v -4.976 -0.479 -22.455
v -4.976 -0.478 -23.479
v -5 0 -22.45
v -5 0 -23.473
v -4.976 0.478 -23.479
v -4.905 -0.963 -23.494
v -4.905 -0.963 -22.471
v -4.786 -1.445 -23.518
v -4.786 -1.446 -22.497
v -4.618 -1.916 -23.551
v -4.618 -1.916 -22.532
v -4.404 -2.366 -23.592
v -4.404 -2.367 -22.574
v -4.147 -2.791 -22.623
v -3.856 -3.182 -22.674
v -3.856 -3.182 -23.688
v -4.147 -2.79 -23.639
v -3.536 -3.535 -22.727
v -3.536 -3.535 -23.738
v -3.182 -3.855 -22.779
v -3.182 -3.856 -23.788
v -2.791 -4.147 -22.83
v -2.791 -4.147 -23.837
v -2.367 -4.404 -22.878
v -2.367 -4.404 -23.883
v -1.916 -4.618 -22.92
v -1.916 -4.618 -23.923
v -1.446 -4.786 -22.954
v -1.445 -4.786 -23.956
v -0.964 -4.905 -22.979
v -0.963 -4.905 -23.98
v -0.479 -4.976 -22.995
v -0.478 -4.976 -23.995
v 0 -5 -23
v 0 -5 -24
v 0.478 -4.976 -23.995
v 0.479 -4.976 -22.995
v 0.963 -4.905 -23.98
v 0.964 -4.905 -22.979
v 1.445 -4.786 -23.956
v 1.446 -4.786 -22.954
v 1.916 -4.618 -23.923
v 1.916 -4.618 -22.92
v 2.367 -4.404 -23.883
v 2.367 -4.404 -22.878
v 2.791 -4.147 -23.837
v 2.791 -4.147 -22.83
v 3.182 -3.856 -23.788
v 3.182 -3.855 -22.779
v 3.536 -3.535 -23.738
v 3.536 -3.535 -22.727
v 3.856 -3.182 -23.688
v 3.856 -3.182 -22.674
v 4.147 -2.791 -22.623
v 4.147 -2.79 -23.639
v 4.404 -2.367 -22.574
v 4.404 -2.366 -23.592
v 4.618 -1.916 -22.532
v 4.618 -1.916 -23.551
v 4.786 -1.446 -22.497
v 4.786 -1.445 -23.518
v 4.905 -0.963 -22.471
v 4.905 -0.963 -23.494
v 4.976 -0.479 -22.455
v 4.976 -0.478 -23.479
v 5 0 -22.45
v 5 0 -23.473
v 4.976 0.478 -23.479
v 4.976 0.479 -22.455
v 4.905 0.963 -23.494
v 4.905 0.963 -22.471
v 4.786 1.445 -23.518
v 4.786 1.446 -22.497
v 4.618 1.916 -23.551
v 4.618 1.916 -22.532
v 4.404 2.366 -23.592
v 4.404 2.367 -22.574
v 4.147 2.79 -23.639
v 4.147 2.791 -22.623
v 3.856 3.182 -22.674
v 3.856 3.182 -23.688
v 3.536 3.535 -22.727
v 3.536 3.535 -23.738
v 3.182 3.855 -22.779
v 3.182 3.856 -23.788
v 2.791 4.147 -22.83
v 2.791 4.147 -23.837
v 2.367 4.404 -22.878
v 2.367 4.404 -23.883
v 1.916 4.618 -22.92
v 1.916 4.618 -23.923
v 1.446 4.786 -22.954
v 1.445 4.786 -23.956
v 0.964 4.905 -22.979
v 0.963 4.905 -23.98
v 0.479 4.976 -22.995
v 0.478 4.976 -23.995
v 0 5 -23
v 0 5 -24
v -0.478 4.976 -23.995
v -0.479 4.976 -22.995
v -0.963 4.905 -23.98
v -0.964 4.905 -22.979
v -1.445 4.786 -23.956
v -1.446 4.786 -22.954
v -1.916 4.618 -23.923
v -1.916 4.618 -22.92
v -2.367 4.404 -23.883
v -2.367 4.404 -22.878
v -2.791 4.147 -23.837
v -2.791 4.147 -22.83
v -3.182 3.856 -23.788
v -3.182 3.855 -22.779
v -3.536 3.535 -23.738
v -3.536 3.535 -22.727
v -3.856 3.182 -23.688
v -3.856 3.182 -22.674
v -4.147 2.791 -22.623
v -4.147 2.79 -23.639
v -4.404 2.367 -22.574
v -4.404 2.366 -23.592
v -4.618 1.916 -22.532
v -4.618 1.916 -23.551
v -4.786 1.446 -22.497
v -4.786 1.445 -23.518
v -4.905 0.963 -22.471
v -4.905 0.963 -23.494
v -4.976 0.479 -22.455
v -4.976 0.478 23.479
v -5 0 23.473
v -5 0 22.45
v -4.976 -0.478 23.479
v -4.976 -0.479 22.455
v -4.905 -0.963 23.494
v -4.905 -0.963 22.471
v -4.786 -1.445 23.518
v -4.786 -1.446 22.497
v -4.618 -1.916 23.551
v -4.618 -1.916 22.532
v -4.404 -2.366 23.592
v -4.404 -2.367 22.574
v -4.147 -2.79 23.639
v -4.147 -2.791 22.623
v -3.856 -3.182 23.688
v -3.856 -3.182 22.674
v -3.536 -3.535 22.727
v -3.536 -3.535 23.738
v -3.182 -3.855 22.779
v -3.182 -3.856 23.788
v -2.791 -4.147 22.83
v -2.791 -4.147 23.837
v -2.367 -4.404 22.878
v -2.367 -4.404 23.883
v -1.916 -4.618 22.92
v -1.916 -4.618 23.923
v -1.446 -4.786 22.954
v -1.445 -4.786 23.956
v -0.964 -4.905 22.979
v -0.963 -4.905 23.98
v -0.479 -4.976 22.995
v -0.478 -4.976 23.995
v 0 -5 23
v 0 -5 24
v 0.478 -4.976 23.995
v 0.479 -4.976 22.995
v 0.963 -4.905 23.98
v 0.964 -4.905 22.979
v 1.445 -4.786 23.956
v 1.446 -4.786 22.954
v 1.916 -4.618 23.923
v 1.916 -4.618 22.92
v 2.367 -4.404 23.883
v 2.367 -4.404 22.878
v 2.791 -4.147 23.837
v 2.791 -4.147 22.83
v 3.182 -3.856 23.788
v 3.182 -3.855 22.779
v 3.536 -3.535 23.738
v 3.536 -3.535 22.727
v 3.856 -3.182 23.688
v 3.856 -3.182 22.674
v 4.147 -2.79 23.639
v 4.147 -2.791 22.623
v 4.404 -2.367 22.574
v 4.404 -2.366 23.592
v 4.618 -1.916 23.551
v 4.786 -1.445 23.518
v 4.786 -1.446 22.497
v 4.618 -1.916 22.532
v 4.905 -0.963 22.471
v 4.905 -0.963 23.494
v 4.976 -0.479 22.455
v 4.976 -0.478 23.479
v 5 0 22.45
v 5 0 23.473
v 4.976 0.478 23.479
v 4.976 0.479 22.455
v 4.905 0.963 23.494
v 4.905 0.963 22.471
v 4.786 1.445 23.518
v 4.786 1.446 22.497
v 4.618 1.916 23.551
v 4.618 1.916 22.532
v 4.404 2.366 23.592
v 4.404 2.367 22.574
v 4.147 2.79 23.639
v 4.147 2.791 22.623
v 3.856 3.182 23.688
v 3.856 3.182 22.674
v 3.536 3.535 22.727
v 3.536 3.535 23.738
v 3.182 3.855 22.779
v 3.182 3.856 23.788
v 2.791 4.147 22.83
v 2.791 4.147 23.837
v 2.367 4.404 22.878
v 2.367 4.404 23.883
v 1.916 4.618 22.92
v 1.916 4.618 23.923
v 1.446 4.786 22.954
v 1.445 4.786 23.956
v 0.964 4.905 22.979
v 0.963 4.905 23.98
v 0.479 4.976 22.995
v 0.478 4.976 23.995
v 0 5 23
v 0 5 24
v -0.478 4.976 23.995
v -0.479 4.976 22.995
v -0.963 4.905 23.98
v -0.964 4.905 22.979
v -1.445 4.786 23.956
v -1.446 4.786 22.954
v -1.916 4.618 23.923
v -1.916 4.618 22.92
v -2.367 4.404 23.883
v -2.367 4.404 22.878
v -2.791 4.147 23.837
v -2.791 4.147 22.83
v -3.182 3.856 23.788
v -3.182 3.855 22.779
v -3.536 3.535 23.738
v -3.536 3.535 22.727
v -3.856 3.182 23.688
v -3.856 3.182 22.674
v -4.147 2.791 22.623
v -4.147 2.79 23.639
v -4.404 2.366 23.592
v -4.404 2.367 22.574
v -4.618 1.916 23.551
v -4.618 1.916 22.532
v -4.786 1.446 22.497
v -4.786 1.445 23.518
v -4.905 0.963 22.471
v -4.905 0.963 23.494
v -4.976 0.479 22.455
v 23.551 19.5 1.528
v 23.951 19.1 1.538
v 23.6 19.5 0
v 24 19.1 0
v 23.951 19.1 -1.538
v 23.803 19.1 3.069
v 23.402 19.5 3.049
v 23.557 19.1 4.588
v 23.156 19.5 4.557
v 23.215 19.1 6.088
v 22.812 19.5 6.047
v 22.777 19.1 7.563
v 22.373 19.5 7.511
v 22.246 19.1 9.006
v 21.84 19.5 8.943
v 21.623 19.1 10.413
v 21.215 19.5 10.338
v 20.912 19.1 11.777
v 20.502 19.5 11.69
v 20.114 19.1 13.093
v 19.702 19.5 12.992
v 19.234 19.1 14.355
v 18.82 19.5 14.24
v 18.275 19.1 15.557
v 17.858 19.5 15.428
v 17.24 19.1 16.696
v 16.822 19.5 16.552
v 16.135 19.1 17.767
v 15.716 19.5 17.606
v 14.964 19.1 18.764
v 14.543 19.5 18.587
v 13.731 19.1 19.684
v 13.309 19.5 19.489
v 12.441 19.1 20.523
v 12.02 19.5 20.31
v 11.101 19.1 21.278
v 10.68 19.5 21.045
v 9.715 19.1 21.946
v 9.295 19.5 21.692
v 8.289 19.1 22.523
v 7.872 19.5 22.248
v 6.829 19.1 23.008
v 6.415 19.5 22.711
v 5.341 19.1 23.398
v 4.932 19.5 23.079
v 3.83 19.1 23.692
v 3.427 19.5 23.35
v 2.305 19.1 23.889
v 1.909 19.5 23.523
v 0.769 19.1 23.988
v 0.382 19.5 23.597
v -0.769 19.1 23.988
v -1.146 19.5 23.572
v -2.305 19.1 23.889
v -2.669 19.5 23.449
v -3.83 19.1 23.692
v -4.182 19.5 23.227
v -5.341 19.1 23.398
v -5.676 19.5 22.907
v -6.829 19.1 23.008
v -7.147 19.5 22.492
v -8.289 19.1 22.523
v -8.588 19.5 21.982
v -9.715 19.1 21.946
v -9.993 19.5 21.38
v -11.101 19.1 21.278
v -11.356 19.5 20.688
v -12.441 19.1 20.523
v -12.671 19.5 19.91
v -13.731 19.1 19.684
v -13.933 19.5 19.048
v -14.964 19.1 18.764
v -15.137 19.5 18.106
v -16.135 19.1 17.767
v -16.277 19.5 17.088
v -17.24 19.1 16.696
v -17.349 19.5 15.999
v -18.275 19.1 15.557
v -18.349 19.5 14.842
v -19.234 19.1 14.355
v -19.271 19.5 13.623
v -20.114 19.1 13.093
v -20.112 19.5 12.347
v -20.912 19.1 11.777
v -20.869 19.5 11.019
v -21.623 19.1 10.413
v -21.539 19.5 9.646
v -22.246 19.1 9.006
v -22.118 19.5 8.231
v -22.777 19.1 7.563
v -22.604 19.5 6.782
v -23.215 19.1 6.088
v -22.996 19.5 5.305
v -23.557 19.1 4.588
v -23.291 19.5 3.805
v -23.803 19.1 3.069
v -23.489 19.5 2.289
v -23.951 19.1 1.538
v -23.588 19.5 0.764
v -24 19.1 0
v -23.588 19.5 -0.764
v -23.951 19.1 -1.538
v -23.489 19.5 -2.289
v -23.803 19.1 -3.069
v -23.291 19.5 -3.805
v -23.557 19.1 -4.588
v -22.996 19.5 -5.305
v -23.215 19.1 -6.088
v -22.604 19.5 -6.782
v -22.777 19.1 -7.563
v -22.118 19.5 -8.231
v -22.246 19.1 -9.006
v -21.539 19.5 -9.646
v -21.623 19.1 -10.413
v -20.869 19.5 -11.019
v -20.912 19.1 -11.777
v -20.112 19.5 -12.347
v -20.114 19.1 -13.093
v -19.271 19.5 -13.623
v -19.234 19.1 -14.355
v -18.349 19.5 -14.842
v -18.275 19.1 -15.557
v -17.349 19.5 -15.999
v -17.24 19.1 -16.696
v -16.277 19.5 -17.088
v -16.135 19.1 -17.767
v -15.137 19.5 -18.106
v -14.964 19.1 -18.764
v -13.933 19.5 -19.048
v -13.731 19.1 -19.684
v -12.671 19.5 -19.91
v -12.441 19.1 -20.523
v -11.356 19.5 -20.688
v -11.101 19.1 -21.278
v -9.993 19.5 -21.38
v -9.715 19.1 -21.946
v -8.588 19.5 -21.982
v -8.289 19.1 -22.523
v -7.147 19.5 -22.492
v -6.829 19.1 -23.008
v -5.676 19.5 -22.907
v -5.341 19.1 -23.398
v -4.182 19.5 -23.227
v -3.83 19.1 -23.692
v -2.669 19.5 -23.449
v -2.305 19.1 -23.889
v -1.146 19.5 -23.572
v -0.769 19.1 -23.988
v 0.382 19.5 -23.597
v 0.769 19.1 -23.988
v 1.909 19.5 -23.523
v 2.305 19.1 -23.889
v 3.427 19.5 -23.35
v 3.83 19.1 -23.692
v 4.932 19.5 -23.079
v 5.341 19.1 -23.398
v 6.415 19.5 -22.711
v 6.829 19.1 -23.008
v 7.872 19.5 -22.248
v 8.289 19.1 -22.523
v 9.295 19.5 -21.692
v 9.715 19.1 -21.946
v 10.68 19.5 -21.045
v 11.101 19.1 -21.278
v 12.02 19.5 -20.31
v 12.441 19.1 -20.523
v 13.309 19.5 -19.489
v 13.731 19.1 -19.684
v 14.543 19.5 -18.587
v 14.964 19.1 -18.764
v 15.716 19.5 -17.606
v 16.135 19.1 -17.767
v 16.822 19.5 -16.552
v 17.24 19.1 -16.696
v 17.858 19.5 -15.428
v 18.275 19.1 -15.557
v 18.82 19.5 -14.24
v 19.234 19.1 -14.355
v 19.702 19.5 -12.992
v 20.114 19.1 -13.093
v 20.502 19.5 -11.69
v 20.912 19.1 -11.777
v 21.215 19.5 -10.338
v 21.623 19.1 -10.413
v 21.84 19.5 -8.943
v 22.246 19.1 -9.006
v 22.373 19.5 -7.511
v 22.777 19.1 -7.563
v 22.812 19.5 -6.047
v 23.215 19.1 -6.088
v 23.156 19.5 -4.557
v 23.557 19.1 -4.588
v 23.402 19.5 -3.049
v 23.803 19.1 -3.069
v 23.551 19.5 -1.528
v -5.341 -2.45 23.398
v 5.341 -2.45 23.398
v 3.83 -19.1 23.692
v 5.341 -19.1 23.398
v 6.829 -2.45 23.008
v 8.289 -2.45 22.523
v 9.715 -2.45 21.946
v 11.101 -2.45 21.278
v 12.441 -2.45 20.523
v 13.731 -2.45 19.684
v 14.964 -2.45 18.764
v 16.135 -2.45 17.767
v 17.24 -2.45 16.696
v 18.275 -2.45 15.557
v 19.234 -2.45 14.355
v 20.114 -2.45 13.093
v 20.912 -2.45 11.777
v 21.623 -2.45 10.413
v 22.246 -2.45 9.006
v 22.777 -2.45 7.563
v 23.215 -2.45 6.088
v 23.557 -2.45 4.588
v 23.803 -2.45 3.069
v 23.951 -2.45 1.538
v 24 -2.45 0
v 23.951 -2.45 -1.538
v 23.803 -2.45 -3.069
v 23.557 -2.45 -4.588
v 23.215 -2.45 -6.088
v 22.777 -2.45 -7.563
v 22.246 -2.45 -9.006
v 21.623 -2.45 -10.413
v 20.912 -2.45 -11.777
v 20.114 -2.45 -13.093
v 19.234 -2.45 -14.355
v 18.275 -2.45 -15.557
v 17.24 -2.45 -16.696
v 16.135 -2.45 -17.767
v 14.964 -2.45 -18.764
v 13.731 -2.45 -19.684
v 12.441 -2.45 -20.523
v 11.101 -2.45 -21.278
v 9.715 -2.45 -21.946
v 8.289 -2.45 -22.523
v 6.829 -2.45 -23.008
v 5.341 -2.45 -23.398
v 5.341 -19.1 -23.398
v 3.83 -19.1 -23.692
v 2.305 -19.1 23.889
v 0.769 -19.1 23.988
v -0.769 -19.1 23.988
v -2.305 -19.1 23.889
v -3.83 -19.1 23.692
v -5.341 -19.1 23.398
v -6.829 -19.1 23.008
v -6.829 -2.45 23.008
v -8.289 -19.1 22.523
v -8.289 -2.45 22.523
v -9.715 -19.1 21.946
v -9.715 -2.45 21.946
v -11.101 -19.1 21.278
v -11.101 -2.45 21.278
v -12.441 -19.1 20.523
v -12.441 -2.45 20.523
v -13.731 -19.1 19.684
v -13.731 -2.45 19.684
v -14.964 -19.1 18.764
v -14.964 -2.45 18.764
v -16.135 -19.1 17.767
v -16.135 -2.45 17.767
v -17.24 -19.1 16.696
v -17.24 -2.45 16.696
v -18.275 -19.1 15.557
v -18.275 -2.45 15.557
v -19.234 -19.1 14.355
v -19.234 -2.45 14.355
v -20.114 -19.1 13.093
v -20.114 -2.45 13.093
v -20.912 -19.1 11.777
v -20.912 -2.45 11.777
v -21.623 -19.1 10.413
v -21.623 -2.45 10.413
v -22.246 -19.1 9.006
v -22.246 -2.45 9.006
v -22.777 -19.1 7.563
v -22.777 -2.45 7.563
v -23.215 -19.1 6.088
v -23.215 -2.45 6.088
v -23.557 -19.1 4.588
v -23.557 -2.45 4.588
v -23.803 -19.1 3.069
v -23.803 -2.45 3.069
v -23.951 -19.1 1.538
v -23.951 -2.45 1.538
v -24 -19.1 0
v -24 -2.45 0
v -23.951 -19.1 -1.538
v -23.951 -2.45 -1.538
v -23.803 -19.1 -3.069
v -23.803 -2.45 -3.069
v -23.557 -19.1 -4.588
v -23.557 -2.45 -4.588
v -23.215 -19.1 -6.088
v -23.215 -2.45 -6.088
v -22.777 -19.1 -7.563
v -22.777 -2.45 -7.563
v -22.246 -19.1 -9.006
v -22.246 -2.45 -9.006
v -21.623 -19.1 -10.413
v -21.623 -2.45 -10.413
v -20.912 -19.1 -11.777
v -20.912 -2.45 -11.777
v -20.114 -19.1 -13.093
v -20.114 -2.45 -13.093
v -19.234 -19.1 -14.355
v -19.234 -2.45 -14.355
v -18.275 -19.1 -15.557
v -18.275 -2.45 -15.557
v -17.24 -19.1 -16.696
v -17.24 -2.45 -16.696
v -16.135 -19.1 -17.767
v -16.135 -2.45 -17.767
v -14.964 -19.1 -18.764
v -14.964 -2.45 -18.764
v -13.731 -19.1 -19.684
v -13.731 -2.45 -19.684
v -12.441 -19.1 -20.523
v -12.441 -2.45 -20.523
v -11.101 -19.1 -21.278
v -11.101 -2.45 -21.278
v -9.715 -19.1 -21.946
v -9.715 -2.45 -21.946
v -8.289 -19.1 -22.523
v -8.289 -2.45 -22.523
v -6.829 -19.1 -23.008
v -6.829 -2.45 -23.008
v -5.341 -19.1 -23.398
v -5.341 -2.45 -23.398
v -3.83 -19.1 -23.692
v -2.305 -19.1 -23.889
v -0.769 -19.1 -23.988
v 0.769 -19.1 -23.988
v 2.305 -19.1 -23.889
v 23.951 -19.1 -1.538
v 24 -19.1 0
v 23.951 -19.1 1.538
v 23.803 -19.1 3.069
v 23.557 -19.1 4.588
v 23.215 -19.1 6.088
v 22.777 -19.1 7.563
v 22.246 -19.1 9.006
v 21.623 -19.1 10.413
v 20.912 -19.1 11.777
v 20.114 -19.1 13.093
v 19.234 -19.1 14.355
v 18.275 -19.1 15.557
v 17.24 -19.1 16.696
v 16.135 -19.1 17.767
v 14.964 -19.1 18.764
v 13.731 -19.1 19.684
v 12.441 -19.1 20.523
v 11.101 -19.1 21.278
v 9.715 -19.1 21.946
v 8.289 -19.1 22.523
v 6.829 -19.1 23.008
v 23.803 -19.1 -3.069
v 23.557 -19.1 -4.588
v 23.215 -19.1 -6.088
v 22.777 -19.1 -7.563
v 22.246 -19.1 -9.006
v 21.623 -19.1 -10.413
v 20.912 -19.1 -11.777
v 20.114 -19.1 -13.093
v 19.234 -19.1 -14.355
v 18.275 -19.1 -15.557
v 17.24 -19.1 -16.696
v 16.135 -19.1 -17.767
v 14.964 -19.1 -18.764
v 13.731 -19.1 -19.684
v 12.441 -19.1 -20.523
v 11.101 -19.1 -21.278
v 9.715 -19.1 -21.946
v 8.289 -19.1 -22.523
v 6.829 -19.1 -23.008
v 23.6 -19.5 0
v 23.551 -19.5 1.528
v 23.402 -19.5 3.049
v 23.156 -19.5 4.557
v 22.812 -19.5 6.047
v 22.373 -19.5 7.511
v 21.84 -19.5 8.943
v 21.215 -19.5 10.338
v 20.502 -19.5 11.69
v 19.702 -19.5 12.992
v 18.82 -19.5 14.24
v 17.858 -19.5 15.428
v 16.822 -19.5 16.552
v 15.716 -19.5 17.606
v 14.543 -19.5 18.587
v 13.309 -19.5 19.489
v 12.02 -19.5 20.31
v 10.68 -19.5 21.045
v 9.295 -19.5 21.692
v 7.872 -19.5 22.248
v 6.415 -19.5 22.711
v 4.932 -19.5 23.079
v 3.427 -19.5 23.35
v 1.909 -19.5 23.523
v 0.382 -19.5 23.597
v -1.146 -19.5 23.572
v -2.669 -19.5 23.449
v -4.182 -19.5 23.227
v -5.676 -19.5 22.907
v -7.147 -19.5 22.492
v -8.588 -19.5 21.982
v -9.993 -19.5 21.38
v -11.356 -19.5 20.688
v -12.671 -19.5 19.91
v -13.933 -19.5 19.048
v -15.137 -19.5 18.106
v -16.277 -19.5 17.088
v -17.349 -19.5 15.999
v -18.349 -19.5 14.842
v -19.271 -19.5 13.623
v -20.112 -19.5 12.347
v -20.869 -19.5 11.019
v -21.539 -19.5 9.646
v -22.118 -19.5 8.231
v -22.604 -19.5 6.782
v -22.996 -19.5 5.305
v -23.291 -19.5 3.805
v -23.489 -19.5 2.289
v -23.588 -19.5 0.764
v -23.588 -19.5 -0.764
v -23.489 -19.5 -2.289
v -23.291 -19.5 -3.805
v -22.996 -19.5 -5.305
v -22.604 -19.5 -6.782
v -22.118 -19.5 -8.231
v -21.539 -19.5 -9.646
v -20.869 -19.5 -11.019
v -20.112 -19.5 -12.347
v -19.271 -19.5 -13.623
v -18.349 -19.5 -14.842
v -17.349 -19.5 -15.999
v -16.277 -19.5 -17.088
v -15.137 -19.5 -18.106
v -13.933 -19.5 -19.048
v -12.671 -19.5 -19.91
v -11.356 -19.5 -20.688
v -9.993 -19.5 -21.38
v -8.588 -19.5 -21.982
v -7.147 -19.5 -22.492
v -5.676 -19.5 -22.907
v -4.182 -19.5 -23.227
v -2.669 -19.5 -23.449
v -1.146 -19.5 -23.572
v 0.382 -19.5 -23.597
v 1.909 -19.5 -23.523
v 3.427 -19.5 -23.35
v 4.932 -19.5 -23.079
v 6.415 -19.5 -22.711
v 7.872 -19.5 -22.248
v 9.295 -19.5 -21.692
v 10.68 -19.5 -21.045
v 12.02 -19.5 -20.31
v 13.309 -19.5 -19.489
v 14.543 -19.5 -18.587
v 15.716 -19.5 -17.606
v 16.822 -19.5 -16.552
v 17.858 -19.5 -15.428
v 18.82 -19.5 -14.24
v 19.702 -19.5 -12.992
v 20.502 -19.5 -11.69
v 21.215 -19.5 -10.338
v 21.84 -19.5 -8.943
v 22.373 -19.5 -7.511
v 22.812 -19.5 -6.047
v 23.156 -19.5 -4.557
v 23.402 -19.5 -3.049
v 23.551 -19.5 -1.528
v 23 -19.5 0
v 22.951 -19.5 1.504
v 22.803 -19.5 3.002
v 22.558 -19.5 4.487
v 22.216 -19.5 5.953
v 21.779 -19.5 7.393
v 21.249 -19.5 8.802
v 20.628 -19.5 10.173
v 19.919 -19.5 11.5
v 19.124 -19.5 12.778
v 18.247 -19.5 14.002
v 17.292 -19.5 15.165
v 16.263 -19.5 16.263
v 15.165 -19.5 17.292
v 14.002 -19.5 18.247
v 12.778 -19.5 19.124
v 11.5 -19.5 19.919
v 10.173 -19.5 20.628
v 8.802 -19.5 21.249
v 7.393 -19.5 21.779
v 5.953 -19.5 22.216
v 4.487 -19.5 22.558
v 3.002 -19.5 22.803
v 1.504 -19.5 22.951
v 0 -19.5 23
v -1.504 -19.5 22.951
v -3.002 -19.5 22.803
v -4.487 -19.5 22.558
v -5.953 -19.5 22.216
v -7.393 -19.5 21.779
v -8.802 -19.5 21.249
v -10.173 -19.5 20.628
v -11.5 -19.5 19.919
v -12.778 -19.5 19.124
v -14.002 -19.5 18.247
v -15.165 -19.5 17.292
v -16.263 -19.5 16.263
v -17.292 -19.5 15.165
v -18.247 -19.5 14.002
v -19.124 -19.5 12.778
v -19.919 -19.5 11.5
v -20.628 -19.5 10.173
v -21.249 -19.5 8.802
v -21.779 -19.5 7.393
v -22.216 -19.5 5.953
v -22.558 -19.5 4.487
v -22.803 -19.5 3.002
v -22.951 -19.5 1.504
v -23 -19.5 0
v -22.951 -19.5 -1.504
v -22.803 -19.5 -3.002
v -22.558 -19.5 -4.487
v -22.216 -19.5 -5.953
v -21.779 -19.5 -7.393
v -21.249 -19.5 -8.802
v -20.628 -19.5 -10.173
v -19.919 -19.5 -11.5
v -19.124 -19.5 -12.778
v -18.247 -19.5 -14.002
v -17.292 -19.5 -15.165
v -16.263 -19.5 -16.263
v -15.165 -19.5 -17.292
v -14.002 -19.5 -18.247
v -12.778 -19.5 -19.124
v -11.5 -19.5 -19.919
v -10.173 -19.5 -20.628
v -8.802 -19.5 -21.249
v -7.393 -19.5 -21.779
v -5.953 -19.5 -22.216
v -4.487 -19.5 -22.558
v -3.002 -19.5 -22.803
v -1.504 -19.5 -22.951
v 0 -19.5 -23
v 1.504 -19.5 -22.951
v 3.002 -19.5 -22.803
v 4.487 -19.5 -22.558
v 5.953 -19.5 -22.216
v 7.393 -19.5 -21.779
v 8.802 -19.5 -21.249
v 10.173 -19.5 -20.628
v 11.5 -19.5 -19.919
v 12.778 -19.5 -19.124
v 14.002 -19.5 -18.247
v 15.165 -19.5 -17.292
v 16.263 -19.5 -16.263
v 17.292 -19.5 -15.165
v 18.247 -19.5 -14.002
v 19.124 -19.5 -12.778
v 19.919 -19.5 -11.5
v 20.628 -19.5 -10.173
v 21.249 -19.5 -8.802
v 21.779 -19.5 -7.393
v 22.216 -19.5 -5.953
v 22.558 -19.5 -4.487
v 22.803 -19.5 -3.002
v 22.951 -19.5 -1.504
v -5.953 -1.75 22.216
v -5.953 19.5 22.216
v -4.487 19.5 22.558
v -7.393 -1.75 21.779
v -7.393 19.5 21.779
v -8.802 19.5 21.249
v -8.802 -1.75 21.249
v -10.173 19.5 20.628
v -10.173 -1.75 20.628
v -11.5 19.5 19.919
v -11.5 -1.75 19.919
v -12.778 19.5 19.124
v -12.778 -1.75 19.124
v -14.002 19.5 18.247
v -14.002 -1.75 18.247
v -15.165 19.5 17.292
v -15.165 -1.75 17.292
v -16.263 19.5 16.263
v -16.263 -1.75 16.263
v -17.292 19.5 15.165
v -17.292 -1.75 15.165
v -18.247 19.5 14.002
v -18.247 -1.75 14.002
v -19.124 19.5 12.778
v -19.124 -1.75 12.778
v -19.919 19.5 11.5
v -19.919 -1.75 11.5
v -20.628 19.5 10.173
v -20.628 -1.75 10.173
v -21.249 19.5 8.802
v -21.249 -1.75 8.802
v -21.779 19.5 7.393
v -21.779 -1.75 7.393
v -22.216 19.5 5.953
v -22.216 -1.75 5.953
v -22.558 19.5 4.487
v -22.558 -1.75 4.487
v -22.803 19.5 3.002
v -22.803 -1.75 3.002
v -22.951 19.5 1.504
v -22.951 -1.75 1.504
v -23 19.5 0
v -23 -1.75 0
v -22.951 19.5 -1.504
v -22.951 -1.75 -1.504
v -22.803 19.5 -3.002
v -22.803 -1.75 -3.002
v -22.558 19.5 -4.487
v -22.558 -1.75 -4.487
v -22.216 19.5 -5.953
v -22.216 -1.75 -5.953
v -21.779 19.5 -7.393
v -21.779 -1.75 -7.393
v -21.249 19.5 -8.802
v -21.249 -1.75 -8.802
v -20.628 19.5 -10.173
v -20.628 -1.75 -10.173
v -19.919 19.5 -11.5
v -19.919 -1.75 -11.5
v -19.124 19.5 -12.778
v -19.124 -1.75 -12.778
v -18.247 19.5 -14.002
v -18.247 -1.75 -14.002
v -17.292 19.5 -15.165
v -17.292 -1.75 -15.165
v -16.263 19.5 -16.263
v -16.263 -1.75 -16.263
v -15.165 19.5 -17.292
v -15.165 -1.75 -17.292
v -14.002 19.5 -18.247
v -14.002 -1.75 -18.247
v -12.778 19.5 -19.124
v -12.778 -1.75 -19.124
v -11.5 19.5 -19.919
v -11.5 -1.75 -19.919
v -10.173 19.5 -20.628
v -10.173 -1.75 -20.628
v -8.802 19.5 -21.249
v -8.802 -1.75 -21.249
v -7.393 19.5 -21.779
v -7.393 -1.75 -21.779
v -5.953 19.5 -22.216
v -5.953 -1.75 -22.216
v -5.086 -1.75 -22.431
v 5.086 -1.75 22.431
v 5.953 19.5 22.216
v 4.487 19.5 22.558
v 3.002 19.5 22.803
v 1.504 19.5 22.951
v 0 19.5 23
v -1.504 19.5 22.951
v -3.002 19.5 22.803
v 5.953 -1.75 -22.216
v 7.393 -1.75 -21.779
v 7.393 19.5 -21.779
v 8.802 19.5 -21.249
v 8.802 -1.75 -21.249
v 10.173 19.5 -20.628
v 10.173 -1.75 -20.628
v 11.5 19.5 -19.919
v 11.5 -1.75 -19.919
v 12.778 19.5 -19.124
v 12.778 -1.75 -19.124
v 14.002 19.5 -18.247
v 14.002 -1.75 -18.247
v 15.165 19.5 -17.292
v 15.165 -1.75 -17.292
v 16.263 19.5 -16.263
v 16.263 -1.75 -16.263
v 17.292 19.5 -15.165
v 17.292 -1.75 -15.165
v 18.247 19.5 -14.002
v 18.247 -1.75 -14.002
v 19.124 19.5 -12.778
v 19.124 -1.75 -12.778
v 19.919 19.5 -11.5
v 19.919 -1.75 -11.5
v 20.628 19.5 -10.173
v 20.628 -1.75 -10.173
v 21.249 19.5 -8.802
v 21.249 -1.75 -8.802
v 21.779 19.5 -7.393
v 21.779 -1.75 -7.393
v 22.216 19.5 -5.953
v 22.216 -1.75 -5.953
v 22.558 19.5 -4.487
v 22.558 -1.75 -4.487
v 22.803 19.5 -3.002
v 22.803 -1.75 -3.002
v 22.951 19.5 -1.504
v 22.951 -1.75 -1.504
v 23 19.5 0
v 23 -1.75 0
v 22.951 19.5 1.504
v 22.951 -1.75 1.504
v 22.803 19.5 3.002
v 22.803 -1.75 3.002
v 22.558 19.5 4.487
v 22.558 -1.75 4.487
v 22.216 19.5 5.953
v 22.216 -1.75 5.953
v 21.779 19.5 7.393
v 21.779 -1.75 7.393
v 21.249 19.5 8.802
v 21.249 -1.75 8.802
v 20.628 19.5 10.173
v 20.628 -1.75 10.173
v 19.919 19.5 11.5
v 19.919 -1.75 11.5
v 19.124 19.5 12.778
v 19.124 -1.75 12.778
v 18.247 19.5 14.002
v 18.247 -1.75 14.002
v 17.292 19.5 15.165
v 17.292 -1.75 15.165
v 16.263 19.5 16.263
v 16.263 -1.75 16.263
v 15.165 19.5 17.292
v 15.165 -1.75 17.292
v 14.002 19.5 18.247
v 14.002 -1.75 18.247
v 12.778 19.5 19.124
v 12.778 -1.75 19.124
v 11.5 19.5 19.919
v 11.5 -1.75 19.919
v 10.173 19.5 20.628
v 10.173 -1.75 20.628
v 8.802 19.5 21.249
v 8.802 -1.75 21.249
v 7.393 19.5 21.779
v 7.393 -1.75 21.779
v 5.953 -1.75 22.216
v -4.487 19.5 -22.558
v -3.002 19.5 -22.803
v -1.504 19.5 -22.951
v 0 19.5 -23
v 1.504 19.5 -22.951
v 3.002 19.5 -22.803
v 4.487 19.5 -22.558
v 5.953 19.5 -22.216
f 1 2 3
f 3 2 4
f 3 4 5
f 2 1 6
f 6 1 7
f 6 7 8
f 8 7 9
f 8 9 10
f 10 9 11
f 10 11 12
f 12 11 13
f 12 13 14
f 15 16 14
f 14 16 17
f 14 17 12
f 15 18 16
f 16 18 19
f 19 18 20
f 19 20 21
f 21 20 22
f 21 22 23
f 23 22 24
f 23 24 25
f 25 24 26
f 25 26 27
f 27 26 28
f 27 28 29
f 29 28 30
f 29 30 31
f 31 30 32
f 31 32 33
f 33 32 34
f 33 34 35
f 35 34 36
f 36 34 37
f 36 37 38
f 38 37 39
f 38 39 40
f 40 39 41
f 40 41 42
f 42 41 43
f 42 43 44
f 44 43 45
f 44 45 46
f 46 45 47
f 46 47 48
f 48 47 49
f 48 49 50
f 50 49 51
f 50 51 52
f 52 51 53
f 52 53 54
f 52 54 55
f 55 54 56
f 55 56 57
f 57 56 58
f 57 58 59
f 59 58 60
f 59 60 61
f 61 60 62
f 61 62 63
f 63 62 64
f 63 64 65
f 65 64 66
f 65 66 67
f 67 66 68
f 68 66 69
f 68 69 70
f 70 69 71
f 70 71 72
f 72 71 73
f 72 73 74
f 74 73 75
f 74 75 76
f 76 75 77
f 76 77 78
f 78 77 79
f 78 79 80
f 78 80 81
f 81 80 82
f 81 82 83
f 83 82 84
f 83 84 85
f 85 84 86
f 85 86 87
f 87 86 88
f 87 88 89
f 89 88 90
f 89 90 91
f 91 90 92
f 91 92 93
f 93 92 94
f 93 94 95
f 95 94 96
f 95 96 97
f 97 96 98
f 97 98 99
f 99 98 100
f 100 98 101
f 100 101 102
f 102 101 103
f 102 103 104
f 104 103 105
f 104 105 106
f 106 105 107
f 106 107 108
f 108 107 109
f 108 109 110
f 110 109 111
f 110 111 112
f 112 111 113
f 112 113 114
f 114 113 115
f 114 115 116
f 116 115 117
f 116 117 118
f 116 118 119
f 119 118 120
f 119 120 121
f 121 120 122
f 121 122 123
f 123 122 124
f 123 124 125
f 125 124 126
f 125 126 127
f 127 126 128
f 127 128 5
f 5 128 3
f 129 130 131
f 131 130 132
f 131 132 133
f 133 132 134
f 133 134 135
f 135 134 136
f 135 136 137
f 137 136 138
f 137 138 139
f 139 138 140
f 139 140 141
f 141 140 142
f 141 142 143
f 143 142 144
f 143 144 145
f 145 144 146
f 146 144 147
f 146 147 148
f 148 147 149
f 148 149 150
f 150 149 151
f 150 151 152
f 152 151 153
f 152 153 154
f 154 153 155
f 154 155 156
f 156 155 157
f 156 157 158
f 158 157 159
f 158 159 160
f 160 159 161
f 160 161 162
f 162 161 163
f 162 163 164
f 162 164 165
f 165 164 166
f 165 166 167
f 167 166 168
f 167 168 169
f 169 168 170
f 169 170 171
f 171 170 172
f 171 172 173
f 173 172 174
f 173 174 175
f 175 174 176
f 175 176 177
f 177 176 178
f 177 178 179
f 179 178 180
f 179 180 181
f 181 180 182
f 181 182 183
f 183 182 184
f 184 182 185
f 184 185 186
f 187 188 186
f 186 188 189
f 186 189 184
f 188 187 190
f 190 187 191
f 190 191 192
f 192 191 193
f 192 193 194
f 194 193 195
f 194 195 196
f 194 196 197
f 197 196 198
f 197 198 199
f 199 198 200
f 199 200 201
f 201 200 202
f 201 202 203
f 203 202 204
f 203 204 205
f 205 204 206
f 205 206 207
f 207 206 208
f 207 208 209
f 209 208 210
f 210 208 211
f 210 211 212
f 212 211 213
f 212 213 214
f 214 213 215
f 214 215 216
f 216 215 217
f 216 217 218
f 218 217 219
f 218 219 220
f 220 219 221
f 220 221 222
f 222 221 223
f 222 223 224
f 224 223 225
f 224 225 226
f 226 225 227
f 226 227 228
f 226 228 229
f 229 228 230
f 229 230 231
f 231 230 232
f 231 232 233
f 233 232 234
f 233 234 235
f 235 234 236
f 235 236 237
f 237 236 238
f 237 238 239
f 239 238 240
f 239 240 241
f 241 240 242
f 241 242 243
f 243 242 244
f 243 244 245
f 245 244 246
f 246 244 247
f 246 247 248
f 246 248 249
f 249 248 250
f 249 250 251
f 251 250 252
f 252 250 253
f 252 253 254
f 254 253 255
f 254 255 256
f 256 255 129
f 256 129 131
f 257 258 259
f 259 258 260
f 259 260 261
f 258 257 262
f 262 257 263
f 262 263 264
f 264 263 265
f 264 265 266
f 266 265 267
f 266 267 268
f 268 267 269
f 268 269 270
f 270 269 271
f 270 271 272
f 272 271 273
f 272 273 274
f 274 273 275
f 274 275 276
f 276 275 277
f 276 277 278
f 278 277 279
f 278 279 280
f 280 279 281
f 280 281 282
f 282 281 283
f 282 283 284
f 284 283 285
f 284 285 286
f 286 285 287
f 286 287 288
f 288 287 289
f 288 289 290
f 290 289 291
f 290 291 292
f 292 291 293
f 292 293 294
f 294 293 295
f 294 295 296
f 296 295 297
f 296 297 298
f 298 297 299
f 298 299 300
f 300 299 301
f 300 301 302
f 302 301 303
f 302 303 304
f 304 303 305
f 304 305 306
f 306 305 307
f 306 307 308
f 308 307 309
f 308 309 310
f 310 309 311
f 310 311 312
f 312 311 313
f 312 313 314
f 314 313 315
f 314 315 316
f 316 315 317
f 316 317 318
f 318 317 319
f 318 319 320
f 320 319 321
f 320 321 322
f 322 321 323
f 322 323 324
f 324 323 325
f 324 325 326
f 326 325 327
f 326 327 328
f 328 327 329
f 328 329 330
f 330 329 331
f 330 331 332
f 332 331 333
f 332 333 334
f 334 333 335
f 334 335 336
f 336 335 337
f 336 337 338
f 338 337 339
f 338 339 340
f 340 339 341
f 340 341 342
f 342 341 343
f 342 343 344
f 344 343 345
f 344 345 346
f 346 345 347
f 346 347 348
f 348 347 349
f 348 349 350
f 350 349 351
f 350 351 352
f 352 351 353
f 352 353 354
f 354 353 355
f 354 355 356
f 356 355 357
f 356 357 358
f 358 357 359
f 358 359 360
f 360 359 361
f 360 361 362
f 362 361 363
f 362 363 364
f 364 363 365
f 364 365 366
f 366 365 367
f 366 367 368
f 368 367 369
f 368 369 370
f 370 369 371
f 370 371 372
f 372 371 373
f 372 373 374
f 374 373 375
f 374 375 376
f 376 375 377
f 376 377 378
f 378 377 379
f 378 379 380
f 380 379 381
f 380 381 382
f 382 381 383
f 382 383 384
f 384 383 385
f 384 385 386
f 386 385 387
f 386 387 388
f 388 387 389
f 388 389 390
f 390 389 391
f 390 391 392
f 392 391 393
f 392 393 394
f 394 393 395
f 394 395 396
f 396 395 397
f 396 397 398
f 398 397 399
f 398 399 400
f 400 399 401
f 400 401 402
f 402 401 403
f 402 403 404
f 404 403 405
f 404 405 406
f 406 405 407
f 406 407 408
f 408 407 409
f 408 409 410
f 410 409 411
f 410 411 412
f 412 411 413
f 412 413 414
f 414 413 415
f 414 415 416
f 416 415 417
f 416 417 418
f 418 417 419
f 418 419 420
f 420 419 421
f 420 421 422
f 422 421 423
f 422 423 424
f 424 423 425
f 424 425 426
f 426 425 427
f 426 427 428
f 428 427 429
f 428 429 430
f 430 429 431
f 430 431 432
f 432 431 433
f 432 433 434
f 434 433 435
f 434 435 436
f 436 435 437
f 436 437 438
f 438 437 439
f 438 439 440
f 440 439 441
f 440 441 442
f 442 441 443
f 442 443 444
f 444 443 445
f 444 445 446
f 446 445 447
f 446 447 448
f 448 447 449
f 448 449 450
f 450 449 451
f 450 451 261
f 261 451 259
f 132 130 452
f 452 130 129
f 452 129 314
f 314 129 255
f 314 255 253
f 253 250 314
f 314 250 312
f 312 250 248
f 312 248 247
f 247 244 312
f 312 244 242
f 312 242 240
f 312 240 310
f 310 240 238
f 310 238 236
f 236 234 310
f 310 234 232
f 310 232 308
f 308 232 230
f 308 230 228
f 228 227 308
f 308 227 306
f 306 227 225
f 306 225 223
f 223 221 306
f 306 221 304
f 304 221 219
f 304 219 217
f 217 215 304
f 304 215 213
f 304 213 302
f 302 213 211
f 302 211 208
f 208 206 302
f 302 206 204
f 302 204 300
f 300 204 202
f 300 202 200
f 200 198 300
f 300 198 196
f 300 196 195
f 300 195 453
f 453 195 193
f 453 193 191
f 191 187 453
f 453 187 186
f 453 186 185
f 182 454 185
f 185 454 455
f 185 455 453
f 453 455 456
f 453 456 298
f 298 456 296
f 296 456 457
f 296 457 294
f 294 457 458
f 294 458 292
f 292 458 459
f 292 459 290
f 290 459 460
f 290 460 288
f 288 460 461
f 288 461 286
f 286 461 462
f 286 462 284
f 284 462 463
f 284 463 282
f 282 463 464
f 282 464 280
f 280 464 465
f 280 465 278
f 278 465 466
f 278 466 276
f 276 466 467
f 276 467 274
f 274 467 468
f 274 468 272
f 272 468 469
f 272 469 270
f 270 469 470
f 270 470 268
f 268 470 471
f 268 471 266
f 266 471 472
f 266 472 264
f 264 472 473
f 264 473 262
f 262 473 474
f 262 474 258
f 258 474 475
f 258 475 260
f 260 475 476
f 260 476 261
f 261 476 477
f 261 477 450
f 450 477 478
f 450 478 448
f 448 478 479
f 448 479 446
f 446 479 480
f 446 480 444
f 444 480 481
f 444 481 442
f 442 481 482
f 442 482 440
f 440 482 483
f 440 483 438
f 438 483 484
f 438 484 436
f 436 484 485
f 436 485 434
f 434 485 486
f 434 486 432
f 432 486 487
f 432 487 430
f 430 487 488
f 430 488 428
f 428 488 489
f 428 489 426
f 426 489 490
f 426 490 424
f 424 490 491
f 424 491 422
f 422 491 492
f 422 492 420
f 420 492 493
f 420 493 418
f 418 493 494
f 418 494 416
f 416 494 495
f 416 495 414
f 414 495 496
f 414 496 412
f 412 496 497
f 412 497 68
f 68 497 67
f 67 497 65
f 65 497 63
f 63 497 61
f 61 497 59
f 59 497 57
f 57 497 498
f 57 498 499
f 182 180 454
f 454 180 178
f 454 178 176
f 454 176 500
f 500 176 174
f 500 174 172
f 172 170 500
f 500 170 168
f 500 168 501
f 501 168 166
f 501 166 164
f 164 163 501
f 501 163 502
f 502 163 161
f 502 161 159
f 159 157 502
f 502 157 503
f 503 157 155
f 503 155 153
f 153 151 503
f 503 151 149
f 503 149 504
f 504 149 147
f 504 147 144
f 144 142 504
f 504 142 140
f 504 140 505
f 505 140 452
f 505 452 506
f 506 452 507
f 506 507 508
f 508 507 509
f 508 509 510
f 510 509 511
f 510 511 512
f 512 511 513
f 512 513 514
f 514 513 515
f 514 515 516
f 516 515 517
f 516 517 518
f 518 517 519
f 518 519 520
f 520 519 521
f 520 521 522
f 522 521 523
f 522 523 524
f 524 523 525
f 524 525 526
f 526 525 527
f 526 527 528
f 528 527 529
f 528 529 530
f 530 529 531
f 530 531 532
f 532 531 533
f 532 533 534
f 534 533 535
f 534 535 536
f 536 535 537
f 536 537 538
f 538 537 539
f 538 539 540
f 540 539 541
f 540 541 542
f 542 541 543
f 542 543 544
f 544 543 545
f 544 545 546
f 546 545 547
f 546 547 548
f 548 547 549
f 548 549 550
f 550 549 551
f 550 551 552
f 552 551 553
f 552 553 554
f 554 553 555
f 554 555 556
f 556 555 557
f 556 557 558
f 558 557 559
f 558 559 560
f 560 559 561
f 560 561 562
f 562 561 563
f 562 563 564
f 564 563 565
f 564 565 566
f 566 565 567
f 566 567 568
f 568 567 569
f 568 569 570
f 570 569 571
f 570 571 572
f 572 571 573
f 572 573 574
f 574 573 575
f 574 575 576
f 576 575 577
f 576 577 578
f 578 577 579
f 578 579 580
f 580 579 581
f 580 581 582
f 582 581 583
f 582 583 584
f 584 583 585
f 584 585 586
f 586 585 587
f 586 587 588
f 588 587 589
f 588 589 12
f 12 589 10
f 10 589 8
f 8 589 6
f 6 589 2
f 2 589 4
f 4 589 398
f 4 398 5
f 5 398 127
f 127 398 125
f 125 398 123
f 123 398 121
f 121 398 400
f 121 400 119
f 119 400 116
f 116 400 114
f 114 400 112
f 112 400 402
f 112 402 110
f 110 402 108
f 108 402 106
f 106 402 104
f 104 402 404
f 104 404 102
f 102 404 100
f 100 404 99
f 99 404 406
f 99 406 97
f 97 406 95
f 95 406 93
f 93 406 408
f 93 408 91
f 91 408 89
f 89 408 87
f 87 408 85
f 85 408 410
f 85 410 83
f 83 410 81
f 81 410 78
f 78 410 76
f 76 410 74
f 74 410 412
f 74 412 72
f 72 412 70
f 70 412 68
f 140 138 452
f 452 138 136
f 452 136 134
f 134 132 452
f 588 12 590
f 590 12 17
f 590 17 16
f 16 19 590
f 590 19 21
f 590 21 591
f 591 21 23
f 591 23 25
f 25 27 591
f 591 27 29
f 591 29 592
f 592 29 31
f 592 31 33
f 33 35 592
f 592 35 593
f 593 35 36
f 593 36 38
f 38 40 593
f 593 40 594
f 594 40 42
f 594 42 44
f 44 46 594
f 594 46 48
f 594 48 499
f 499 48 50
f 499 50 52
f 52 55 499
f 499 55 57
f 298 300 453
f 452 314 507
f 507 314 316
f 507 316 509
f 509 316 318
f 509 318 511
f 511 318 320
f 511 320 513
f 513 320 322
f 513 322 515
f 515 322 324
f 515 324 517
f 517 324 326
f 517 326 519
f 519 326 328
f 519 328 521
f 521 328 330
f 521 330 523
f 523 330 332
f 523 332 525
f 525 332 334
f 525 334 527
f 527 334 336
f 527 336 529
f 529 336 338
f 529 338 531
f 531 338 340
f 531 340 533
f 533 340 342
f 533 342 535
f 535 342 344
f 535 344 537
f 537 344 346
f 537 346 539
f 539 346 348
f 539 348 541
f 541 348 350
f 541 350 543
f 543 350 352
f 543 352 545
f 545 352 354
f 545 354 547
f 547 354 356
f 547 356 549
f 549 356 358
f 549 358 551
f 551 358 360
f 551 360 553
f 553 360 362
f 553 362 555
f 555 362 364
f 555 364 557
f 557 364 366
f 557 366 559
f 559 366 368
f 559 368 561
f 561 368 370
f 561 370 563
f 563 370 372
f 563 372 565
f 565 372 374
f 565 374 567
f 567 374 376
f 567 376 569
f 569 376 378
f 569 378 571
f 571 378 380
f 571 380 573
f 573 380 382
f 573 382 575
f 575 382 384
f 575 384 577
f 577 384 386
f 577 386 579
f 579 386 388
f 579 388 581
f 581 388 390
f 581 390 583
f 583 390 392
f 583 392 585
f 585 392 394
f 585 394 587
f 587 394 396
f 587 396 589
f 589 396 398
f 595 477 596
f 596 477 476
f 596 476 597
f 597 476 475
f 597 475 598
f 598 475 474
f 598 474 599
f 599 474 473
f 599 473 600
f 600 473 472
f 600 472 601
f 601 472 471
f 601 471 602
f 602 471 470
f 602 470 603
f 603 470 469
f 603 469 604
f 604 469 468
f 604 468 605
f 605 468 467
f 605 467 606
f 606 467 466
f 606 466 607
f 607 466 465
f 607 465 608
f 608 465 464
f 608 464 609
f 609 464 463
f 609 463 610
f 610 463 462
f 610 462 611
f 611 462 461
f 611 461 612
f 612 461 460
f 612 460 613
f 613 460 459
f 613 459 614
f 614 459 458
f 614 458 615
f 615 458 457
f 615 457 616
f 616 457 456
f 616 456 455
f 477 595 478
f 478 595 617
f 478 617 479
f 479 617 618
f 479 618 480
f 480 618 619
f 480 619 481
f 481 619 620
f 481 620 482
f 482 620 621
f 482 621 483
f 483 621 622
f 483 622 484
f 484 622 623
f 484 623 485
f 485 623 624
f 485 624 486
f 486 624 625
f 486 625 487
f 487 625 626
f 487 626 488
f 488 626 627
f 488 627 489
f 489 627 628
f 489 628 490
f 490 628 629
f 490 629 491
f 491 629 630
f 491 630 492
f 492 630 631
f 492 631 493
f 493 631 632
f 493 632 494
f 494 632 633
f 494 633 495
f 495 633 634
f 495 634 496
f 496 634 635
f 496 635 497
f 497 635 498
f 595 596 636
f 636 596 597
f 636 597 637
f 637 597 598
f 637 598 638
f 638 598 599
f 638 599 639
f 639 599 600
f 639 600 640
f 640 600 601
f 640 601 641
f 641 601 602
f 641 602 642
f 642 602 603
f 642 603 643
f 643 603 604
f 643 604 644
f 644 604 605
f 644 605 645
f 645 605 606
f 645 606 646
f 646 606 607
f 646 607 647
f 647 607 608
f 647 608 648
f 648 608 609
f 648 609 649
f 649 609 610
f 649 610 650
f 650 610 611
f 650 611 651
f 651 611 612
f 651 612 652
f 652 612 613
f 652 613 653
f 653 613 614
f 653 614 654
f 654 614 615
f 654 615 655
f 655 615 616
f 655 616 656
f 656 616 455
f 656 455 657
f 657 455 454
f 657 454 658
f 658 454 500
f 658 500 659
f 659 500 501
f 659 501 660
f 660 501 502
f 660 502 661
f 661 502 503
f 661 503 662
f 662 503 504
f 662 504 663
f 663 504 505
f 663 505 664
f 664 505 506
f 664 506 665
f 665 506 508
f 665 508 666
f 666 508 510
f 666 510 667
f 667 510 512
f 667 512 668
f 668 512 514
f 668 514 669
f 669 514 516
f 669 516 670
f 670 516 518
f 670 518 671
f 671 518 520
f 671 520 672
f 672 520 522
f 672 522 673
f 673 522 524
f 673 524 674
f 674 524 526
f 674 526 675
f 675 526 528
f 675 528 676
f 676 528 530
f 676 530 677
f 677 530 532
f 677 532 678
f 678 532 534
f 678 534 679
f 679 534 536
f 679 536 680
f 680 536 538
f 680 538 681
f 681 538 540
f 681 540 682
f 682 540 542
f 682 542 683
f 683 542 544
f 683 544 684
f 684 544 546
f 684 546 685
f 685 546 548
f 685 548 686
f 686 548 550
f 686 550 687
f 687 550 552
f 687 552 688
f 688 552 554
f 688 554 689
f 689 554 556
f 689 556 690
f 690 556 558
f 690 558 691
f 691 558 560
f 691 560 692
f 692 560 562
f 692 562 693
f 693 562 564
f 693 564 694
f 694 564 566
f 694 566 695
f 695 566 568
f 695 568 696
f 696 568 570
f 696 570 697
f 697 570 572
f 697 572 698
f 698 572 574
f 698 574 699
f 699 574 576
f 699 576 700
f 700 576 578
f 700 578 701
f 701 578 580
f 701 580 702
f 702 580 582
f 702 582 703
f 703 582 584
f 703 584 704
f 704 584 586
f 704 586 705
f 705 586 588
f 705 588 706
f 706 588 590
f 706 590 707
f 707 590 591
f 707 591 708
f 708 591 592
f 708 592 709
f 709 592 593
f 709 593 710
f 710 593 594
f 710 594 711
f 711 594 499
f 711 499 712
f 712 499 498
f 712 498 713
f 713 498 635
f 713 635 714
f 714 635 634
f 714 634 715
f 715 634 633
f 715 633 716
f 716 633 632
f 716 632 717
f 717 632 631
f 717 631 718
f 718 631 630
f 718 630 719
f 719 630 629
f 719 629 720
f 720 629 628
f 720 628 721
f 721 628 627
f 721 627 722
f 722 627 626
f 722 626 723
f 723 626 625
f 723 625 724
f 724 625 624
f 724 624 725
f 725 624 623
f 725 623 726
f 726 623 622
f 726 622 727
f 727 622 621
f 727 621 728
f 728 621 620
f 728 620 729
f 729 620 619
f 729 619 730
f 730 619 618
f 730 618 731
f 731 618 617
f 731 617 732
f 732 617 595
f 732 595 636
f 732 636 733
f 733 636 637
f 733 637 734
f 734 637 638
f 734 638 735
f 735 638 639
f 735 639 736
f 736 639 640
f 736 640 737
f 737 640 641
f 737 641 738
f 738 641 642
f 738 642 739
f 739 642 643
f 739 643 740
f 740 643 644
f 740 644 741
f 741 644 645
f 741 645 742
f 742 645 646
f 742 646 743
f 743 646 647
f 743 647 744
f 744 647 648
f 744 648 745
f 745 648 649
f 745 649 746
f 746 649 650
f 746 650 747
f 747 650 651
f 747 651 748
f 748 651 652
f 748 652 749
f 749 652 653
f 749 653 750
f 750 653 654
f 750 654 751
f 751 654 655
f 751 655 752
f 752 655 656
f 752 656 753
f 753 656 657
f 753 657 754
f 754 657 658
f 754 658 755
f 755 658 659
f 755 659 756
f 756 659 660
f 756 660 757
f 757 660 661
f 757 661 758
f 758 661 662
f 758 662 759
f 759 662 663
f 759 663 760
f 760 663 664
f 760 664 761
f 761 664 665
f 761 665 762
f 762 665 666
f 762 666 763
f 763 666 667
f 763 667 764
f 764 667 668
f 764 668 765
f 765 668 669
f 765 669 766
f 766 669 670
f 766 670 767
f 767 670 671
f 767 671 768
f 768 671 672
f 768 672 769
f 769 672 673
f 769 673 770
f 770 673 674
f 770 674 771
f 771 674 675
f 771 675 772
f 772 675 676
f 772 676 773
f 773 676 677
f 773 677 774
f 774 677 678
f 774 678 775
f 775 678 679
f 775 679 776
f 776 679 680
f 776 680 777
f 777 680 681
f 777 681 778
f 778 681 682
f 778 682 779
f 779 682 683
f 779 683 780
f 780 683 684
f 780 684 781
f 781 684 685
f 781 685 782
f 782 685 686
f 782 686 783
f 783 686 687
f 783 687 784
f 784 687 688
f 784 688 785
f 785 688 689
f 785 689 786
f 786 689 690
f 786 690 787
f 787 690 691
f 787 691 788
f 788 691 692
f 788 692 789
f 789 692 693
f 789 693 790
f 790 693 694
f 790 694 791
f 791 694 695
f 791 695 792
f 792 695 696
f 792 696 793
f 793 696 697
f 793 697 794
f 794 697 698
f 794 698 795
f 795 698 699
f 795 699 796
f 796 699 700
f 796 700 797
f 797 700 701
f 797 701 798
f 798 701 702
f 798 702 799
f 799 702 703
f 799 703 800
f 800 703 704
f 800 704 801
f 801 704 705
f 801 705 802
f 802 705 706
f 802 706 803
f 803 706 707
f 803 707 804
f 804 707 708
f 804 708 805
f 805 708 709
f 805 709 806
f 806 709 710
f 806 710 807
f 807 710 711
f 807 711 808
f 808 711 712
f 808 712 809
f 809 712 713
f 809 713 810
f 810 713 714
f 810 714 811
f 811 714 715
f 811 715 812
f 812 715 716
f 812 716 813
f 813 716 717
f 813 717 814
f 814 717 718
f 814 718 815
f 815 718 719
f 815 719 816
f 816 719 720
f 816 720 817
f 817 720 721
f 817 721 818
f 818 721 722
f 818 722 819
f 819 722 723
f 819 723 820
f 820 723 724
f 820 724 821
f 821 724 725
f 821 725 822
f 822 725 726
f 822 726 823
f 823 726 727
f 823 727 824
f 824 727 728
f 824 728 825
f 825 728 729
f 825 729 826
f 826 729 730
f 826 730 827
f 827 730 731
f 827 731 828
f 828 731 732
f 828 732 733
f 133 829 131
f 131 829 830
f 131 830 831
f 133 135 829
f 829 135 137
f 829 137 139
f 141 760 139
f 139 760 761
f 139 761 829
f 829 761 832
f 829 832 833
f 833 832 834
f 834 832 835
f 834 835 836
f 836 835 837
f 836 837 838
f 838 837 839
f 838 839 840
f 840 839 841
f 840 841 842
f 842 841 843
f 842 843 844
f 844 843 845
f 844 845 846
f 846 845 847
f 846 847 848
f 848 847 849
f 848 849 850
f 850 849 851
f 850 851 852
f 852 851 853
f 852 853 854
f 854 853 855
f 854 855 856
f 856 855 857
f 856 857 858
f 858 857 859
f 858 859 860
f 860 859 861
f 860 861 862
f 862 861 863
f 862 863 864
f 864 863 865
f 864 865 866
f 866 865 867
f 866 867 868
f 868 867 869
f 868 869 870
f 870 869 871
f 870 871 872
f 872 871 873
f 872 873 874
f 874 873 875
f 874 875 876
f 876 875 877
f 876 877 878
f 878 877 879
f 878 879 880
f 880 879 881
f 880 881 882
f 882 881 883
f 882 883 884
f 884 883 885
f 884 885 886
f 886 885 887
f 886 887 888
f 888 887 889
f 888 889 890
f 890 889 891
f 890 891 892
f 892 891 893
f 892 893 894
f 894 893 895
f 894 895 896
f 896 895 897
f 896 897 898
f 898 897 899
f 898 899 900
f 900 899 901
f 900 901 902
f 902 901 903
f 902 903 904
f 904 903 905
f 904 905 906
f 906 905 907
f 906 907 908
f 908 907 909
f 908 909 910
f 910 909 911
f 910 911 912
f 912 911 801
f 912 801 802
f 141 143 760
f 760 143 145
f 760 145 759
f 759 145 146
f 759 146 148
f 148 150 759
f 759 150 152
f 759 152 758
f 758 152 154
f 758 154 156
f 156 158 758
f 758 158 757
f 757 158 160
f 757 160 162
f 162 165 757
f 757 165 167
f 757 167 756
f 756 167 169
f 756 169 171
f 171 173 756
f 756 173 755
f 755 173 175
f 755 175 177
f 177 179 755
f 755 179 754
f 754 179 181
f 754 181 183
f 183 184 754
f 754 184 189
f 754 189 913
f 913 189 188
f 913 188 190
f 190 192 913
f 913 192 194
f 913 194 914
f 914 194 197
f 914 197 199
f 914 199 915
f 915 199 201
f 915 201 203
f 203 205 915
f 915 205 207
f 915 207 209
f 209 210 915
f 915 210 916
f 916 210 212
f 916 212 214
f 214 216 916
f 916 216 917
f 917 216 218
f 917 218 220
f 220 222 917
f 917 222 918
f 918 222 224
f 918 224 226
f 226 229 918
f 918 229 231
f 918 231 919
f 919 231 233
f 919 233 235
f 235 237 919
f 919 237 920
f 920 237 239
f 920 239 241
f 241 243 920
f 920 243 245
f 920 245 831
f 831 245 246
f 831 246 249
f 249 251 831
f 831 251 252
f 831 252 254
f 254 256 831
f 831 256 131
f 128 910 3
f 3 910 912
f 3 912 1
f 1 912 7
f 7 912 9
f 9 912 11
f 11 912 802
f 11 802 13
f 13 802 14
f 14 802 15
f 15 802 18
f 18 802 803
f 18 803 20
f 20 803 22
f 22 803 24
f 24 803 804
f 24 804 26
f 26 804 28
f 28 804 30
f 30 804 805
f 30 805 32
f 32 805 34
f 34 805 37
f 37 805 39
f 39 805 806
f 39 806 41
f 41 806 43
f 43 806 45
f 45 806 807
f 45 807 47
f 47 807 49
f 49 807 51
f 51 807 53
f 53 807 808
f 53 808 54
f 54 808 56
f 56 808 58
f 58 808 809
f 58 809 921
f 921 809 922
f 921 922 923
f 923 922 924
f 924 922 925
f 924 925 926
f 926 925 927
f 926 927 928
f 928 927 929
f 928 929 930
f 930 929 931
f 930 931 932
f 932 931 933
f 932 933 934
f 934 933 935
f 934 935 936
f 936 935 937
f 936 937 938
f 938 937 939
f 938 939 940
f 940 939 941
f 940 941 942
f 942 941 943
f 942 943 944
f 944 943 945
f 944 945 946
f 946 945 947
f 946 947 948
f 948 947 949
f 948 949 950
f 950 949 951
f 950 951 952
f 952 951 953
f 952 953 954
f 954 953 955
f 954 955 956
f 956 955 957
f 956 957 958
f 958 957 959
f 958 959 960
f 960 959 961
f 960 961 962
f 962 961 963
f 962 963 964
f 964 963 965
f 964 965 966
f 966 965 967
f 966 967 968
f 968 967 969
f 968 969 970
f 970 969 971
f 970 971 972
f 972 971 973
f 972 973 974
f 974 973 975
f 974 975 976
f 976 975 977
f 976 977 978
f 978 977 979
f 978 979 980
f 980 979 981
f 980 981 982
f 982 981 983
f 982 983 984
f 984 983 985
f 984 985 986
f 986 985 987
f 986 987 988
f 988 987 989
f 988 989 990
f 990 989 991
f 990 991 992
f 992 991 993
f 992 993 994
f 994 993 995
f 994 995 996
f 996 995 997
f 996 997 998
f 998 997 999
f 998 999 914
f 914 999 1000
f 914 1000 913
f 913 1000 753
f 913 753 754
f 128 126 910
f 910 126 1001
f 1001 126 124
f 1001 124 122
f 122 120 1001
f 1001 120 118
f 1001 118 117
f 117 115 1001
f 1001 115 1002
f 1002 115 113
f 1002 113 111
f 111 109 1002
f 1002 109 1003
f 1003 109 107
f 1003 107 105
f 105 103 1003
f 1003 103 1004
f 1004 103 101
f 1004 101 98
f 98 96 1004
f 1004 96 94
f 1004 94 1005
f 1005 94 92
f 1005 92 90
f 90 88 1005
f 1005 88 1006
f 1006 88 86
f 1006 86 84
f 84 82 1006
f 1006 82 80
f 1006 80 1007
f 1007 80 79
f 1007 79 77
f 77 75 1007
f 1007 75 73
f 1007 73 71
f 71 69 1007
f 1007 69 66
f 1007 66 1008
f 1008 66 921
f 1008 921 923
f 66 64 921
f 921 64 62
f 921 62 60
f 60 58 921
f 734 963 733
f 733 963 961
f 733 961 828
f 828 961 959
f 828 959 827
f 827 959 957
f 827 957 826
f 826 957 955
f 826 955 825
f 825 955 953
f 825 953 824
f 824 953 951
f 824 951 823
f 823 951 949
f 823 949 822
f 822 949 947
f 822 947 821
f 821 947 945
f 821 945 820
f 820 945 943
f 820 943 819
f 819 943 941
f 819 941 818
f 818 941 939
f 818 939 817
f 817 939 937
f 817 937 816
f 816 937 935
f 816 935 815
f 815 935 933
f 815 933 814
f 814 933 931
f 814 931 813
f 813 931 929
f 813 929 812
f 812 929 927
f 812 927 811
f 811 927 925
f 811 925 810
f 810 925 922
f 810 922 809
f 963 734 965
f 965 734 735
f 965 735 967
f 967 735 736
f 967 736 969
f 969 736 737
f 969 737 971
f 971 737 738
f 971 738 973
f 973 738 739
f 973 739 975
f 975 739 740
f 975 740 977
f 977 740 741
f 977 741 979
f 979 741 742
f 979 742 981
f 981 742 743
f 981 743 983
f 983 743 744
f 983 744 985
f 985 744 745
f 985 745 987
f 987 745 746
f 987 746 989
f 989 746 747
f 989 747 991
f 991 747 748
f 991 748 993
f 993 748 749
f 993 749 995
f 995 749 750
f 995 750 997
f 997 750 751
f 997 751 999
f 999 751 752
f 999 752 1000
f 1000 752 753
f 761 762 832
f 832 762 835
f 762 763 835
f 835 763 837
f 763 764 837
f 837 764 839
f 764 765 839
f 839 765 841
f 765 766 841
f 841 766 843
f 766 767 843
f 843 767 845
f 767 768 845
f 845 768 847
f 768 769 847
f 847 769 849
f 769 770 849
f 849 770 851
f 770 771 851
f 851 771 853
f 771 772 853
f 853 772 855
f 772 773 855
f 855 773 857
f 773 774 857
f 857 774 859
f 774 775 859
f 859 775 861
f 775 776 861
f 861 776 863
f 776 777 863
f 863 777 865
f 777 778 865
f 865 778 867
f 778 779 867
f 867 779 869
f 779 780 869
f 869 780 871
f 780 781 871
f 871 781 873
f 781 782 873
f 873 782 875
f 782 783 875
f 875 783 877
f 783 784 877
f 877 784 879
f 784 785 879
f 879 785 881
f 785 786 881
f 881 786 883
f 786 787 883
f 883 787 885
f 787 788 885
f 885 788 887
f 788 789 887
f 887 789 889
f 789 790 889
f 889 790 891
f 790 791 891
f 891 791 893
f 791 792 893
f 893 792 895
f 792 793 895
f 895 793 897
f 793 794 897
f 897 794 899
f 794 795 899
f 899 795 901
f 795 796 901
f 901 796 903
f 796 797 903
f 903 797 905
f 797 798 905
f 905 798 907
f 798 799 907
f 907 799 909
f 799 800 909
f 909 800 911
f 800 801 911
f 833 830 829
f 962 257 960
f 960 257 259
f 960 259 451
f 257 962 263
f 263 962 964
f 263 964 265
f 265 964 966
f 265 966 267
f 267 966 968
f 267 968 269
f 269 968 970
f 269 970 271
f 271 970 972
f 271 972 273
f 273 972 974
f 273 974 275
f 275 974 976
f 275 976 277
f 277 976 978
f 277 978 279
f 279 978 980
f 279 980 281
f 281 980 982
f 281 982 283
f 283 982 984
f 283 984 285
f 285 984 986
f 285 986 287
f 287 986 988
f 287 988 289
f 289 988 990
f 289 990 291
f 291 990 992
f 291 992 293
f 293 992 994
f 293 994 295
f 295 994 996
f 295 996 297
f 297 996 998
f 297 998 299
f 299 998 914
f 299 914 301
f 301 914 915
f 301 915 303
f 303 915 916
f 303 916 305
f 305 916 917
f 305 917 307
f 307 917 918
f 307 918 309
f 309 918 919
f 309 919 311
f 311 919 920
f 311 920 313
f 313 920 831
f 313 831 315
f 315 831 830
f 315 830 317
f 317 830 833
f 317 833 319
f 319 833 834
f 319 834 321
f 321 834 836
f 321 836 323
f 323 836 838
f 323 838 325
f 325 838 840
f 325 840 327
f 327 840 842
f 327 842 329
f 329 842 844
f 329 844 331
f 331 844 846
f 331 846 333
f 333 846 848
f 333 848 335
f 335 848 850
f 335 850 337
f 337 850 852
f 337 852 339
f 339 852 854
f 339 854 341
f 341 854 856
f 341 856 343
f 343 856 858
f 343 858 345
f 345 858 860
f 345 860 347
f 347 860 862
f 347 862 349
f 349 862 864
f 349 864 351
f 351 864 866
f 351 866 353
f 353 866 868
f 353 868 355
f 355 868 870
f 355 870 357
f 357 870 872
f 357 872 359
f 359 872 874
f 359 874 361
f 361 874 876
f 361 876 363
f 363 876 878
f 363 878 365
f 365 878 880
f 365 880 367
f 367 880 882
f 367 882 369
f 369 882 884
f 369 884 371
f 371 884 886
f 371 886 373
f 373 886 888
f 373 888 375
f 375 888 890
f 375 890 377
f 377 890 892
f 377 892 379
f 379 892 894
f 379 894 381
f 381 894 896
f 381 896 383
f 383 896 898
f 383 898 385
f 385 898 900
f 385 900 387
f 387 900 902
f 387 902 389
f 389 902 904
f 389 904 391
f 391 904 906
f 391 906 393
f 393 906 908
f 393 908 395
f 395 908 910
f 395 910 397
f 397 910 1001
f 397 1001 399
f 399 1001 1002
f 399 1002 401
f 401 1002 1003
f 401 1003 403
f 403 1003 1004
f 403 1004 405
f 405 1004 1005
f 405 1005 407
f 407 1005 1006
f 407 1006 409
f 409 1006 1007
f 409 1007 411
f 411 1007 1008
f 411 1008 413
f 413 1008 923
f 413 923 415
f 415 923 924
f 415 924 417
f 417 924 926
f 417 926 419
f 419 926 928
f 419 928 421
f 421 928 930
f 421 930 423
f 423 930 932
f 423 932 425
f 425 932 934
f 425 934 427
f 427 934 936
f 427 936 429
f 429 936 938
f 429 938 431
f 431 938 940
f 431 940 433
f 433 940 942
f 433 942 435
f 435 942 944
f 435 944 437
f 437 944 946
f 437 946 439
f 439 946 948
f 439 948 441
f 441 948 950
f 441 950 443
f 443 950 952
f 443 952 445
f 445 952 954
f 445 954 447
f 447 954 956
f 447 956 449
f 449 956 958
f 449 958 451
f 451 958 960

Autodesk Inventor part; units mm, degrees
ref_plane "YZ Plane" through (0, 0, 0) normal (1, 0, 0) x (0, 1, 0)
ref_plane "XZ Plane" through (0, 0, 0) normal (0, 1, 0) x (-1, 0, 0)
ref_plane "XY Plane" through (0, 0, 0) normal (0, 0, 1) x (1, 0, 0)
sketch "Эскиз1" plane through (0, 0, 0) normal (0, 0, 1) x (1, 0, 0)
  line L0 (0, 19.5) -> (0, -19.5)
  line L1 (23, -19.5) -> (23, 19.5)
  line L2 (23, 19.5) -> (23.6, 19.5)
  line L3 (24, 19.1) -> (24, -19.1)
  line L4 (23.6, -19.5) -> (23, -19.5)
  line L5 (24, -19.1) -> (23.6, -19.5)
  line L6 (24, 19.1) -> (23.6, 19.5)
  point P0 (0, 0)
  point P1 (0, 0)
  point P2 (24, 19.5)
  point P3 (24, -19.5)
  dimension "d0" = 39
  dimension "d1" = 48
  dimension "d2" = 46
  dimension "d7" = 0.4
  dimension "d8" = 45
  dimension "d9" = 0.4
  dimension "d10" = 45
revolve "Вращение1" add sketch "Эскиз1" angle 360 about axis through (0, 19.5, 0) along (0, -1, 0)
sketch "Эскиз2" plane through (0, 0, 0) normal (0, 0, 1) x (1, 0, 0)
  circle A0 centre (0, 0) radius 5
  dimension "d4" = 10
extrude "Выдавливание1" cut sketch "Эскиз2" along normal through all both and the other way through all
equation "\"d9\" = d7"
equation "\"d10\" = d8"
properties part number "75. Втулка шестерни третьей передачи"
